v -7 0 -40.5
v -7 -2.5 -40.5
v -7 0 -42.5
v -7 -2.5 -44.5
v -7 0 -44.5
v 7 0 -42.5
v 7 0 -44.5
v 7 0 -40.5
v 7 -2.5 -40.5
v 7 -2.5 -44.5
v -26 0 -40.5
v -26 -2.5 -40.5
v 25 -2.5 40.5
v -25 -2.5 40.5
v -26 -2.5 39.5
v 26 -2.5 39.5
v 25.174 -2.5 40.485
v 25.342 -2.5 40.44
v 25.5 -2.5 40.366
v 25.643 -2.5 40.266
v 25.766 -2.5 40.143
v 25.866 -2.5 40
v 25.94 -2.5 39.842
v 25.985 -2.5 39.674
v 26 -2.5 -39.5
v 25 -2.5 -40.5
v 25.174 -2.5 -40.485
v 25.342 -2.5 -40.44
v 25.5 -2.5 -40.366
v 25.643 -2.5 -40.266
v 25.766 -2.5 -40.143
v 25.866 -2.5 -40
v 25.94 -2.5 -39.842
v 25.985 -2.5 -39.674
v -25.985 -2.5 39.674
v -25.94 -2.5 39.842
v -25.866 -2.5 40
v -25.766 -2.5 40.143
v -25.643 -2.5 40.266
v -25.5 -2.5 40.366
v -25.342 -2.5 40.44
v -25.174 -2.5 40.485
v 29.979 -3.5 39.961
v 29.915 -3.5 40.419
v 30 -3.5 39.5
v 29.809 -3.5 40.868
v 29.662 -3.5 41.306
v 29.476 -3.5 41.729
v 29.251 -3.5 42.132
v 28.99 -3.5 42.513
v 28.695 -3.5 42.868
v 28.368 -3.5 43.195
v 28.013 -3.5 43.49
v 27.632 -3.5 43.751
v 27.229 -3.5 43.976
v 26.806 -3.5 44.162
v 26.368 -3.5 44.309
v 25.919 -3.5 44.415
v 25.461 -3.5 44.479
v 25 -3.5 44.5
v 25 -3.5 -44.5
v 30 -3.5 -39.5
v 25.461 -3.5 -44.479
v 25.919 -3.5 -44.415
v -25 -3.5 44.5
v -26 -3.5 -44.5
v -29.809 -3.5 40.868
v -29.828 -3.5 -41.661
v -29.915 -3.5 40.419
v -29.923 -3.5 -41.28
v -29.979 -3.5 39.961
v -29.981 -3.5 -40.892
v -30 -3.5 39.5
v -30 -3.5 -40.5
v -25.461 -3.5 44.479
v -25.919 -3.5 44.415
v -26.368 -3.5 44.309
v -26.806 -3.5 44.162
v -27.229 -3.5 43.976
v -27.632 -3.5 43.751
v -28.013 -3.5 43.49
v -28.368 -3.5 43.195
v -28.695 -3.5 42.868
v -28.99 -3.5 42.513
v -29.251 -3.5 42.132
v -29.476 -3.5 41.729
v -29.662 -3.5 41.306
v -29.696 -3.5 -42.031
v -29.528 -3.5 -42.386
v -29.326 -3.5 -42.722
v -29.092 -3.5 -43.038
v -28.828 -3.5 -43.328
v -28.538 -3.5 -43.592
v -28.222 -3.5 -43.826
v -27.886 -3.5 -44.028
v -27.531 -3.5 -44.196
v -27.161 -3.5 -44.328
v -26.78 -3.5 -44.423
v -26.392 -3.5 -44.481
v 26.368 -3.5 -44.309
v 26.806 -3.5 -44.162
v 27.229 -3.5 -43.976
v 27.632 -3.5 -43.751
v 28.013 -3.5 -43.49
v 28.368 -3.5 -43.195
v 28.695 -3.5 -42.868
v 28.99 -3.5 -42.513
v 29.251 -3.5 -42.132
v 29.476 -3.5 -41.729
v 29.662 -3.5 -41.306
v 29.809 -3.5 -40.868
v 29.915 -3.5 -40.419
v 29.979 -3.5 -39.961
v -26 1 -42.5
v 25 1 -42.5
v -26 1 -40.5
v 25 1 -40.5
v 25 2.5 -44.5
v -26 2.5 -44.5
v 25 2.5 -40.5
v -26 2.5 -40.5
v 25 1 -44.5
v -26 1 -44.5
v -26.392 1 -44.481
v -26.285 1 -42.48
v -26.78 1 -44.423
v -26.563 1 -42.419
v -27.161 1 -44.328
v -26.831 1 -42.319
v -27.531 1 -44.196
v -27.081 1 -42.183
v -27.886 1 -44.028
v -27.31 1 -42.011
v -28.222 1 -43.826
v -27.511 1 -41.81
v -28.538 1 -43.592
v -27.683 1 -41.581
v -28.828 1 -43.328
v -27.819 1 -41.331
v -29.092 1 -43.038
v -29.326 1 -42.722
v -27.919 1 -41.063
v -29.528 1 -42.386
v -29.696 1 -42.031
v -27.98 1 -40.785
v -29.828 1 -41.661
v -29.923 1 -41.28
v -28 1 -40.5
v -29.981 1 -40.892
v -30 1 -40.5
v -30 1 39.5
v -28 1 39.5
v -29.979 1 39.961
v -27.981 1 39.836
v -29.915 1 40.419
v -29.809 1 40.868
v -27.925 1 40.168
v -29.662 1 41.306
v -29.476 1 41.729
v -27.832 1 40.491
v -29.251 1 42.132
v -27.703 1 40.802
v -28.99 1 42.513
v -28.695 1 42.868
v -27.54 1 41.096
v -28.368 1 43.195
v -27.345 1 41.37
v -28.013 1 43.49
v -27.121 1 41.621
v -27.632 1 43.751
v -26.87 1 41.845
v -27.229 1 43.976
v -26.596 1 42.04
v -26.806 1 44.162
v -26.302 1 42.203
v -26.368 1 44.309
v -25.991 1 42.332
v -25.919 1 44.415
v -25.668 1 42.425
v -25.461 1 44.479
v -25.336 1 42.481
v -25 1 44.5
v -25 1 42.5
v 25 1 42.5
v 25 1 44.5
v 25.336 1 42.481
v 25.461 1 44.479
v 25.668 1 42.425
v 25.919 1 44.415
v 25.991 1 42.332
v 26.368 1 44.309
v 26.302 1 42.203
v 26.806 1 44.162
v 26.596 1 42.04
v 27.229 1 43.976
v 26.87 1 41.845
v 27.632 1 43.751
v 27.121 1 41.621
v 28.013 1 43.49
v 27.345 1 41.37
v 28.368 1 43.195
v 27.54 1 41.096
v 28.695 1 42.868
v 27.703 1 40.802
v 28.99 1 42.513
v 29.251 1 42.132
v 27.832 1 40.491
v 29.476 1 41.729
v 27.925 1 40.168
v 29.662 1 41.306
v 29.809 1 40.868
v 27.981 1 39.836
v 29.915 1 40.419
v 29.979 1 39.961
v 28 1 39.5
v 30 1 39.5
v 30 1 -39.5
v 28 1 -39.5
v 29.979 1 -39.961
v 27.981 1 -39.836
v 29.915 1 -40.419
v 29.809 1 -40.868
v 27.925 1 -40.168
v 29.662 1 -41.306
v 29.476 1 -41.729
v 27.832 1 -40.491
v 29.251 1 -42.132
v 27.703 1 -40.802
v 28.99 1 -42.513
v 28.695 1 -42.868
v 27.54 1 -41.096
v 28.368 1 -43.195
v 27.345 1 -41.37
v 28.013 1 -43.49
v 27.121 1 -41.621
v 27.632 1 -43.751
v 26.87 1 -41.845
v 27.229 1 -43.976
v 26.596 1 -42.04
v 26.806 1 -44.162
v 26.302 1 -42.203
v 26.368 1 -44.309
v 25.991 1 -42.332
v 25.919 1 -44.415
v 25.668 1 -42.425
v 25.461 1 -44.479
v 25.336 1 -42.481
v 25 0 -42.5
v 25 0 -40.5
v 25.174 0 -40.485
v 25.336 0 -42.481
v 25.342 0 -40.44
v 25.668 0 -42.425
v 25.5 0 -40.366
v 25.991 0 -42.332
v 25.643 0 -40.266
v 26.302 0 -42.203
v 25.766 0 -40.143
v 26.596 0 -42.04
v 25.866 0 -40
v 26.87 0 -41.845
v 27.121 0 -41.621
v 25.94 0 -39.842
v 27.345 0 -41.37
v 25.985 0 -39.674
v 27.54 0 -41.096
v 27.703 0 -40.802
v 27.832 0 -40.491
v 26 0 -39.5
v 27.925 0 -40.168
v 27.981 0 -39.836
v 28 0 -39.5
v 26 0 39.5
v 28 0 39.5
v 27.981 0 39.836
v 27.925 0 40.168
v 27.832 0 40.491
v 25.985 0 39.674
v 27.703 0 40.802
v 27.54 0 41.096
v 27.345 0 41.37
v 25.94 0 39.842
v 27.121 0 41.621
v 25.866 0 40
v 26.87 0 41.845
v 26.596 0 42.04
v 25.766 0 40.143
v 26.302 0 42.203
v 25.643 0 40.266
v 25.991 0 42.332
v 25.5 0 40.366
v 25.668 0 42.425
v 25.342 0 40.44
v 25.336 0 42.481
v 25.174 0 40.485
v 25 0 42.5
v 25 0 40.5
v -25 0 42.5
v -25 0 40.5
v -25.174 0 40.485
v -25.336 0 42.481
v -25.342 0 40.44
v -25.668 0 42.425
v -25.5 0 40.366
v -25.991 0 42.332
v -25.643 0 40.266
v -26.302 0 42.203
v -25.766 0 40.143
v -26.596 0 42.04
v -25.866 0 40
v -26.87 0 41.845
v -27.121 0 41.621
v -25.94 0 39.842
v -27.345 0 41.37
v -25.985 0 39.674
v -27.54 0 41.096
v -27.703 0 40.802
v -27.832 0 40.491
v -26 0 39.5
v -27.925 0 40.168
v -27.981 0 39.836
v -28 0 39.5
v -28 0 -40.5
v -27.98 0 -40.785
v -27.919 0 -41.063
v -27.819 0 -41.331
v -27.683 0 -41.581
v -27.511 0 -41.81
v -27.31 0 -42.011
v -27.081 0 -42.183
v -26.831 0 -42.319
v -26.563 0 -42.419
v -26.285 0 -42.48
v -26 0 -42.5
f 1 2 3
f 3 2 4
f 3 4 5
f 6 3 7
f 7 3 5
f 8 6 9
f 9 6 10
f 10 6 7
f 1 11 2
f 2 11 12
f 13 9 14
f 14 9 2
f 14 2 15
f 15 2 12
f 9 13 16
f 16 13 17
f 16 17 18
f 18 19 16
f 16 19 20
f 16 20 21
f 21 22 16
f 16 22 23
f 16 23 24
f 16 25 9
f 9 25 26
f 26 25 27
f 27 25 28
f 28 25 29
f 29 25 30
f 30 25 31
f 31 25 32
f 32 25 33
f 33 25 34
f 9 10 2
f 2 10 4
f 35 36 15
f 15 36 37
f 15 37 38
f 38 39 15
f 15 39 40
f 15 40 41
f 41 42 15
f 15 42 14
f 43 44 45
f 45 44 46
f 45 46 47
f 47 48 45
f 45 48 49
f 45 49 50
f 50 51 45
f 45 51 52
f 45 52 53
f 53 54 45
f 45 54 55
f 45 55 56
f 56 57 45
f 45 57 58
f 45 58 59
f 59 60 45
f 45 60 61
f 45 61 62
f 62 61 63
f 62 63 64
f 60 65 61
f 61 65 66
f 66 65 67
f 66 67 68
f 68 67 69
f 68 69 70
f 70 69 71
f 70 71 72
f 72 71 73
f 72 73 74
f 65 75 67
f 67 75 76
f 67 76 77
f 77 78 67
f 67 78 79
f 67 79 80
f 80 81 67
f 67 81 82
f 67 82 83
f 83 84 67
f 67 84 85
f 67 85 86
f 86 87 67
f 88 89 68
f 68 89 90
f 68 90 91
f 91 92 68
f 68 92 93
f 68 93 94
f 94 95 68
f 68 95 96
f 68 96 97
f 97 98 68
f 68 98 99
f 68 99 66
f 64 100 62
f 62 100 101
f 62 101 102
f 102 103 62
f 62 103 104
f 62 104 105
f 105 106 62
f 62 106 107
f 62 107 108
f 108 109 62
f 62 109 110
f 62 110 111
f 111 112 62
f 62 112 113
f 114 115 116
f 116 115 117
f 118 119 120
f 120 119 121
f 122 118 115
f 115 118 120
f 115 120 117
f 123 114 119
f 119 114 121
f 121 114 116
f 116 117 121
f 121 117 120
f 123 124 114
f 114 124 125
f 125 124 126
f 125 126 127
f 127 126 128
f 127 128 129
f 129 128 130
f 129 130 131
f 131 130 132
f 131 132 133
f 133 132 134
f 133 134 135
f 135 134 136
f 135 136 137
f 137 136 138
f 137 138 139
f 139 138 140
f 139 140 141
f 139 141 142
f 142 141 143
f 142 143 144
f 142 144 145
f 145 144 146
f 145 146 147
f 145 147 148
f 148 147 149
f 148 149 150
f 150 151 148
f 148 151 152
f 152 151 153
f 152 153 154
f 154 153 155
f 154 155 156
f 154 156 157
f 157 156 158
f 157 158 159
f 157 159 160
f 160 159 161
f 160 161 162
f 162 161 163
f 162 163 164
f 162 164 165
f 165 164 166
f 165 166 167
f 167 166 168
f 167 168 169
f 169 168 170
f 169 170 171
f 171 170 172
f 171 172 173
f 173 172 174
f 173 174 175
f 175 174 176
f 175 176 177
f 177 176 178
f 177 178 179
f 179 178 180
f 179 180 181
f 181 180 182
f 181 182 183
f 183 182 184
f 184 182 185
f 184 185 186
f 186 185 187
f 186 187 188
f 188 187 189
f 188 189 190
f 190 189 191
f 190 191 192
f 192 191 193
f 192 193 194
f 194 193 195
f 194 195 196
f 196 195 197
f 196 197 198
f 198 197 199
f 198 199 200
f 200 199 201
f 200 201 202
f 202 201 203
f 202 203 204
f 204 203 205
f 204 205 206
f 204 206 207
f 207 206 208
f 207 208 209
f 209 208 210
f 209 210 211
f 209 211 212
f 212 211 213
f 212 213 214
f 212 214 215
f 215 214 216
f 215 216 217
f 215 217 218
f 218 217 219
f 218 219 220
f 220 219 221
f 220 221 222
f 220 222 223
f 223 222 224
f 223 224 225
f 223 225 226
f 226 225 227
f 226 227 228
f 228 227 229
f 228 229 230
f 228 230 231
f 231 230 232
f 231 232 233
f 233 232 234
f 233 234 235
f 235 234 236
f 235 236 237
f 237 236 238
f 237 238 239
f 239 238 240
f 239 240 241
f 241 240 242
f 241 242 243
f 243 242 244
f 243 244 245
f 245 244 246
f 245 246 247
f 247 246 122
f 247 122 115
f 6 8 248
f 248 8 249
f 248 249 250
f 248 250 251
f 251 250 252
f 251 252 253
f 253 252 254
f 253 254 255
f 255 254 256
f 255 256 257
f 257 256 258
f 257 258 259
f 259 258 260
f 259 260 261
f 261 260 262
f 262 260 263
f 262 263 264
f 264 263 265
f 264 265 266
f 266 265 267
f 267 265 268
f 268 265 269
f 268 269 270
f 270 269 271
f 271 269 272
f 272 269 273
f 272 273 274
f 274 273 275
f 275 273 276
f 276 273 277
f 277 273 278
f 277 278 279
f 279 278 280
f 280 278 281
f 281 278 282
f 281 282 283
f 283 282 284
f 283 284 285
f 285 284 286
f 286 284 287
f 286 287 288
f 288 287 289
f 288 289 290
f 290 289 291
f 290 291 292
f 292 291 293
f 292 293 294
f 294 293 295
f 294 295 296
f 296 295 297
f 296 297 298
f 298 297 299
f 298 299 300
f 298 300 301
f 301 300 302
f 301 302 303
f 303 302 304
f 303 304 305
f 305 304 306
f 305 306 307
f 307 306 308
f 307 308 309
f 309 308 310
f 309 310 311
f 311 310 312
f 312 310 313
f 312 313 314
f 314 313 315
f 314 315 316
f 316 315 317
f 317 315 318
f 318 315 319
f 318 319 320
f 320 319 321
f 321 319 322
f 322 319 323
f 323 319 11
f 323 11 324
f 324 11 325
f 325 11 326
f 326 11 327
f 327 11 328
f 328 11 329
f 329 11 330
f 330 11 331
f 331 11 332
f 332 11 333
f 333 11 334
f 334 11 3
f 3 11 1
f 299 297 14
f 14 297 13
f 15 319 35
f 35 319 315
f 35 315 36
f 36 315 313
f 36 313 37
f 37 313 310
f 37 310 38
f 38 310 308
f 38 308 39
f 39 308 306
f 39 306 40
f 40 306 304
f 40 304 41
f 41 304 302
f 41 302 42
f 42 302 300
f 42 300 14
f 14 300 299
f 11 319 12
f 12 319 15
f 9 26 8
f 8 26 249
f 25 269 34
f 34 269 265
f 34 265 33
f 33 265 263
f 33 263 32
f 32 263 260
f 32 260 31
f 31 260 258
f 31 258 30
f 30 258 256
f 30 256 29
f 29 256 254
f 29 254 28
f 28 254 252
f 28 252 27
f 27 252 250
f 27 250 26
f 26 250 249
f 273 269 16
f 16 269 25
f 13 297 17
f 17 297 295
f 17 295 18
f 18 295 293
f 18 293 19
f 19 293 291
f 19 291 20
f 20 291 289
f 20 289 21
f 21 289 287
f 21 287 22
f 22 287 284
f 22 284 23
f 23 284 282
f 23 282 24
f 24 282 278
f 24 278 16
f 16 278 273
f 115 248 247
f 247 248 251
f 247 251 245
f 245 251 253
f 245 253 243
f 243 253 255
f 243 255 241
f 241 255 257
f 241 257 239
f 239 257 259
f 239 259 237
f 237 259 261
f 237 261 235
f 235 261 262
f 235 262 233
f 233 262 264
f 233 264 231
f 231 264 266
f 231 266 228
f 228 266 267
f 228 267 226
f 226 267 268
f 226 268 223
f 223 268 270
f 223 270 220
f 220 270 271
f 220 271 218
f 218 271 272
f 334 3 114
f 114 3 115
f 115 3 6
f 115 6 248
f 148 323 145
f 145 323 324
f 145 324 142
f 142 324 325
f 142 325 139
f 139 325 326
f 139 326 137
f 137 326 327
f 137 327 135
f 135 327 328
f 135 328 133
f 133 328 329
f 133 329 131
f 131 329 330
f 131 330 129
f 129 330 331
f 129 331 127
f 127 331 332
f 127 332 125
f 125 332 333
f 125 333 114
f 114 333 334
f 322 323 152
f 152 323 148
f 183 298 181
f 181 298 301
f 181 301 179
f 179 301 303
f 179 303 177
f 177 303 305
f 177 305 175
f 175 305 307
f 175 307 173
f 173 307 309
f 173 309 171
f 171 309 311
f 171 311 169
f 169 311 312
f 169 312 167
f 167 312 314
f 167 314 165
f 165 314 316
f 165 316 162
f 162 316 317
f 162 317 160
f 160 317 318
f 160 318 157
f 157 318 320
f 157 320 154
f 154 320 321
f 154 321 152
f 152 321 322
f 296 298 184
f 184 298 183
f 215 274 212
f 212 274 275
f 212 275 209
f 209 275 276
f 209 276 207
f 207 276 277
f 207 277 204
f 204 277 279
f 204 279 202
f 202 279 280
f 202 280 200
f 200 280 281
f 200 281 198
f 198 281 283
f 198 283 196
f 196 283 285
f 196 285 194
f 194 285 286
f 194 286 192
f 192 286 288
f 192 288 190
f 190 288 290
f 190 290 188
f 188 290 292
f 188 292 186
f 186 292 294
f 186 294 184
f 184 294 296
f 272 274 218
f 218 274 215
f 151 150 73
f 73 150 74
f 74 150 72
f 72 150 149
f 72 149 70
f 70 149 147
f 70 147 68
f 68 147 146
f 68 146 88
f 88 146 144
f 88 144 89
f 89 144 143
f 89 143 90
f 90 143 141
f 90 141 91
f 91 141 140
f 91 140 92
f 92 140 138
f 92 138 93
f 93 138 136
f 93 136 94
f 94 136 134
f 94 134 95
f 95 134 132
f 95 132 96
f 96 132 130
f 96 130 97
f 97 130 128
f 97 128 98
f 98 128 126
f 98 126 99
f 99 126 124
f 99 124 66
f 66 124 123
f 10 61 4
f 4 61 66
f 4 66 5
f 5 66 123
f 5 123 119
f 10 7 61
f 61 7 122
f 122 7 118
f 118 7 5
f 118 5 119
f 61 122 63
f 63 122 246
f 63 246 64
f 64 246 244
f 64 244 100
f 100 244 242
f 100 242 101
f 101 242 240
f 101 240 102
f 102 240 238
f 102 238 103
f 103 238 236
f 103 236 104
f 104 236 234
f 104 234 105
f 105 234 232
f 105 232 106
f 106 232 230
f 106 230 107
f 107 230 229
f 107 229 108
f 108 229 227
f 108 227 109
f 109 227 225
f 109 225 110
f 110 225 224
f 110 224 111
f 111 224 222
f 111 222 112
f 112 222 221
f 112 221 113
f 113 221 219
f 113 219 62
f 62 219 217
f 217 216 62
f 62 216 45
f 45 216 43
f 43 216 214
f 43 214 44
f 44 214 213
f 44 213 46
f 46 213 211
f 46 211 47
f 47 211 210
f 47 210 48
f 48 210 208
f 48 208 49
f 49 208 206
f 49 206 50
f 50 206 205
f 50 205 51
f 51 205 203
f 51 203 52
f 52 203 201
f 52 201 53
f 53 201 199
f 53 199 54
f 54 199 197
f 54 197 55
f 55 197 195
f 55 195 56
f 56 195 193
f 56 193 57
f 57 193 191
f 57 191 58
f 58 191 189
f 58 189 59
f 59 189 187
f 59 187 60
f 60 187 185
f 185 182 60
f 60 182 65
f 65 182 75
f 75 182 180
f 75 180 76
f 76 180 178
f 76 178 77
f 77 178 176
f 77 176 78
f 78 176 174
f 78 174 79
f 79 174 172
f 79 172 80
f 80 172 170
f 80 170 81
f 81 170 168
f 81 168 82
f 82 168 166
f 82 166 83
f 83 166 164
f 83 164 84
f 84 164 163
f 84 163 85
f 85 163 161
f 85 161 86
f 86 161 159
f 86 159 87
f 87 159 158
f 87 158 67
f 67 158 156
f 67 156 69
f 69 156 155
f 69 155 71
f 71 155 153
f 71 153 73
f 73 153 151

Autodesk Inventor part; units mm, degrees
ref_plane "YZ Plane" through (0, 0, 0) normal (1, 0, 0) x (0, 1, 0)
ref_plane "XZ Plane" through (0, 0, 0) normal (0, 1, 0) x (-1, 0, 0)
ref_plane "XY Plane" through (0, 0, 0) normal (0, 0, 1) x (1, 0, 0)
sketch "Sketch1" plane through (0, 0, 0) normal (0, 1, 0) x (-1, 0, 0)
  line L0 (-25, 42.5) -> (25, 42.5)
  line L1 (28, 39.5) -> (28, -40.5)
  line L2 (26, -42.5) -> (-25, -42.5)
  line L3 (-28, -39.5) -> (-28, 39.5)
  line L4 (-28, 42.5) -> (28, -42.5) construction
  line L5 (28, 42.5) -> (-28, -42.5) construction
  arc A0 (26, -42.5) -> (28, -40.5) centre (26, -40.5) ccw
  arc A1 (-28, -39.5) -> (-25, -42.5) centre (-25, -39.5) ccw
  arc A2 (-25, 42.5) -> (-28, 39.5) centre (-25, 39.5) ccw
  arc A3 (28, 39.5) -> (25, 42.5) centre (25, 39.5) ccw
  line L6 (30, -40.5) -> (30, 39.5)
  arc A4 (30, 39.5) -> (25, 44.5) centre (25, 39.5) ccw
  line L7 (25, 44.5) -> (-25, 44.5)
  arc A5 (-25, 44.5) -> (-30, 39.5) centre (-25, 39.5) ccw
  line L8 (-30, 39.5) -> (-30, -39.5)
  arc A6 (-30, -39.5) -> (-25, -44.5) centre (-25, -39.5) ccw
  line L9 (-25, -44.5) -> (26, -44.5)
  arc A7 (26, -44.5) -> (30, -40.5) centre (26, -40.5) ccw
  point P0 (0, 0)
  dimension "d0" = 56
  dimension "d1" = 85
  dimension "d2" = 2
  dimension "d3" = 3
  dimension "d4" = 2
extrude "Extrusion1" add sketch "Sketch1" along normal blind 1
sketch "Sketch2" plane through (0, 0, 0) normal (0, -1, 0) x (1, 0, 0)
  arc A0 (-25, 44.5) -> (-30, 39.5) centre (-25, 39.5) ccw projected
  line L0 (-25, 44.5) -> (25, 44.5) projected
  arc A1 (30, 39.5) -> (25, 44.5) centre (25, 39.5) ccw projected
  line L1 (30, 39.5) -> (30, -39.5) projected
  arc A2 (25, -44.5) -> (30, -39.5) centre (25, -39.5) ccw projected
  line L2 (25, -44.5) -> (-26, -44.5) projected
  arc A3 (-30, -40.5) -> (-26, -44.5) centre (-26, -40.5) ccw projected
  line L3 (-30, -40.5) -> (-30, 39.5) projected
  line L4 (-26, -44.5) -> (25, -44.5)
  line L5 (30, -39.5) -> (30, 39.5)
  line L6 (25, 44.5) -> (-25, 44.5)
  line L7 (-30, 39.5) -> (-30, -40.5)
  line L8 (-30, -44.5) -> (30, 44.5) construction
  line L9 (30, -44.5) -> (-30, 44.5) construction
  arc A4 (-25, 44.5) -> (-30, 39.5) centre (-25, 39.5) ccw
  arc A5 (30, 39.5) -> (25, 44.5) centre (25, 39.5) ccw
  arc A6 (25, -42.5) -> (28, -39.5) centre (25, -39.5) ccw projected
  arc A7 (25, -44.5) -> (30, -39.5) centre (25, -39.5) ccw
  arc A8 (-30, -40.5) -> (-26, -44.5) centre (-26, -40.5) ccw
  line L10 (25, 40.5) -> (-25, 40.5)
  arc A9 (-25, 40.5) -> (-26, 39.5) centre (-25, 39.5) ccw
  line L11 (-26, 39.5) -> (-26, -40.5)
  line L12 (-26, -40.5) -> (25, -40.5)
  arc A10 (25, -40.5) -> (26, -39.5) centre (25, -39.5) ccw
  line L13 (26, -39.5) -> (26, 39.5)
  arc A11 (26, 39.5) -> (25, 40.5) centre (25, 39.5) ccw
  point P0 (0, 0)
  point P1 (-26, -40.5)
  dimension "d12" = 4
extrude "Extrusion2" add sketch "Sketch2" along normal blind 2.5
sketch "Sketch3" plane through (25, 1, -44.5) normal (0, 0, -1) x (-1, 0, 0)
  line L0 (51, -3.5) -> (51, 0) projected
  line L1 (51, 0) -> (0, 0)
  line L2 (0, 0) -> (0, 1.5)
  line L3 (0, 1.5) -> (51, 1.5)
  line L4 (51, 1.5) -> (51, 0)
  point P0 (25, -1)
  dimension "d9" = 1.5
extrude "Extrusion3" add sketch "Sketch3" against normal blind 4
sketch "Sketch4" plane through (0, -2.5, 0) normal (0, -1, 0) x (1, 0, 0)
  line L0 (25, 44.5) -> (-25, 44.5)
  line L1 (-30, 39.5) -> (-30, -40.5)
  line L2 (-26, -44.5) -> (25, -44.5)
  line L3 (30, -39.5) -> (30, 39.5)
  line L4 (30, 44.5) -> (-30, -44.5) construction
  line L5 (-30, 44.5) -> (30, -44.5) construction
  line L6 (-26, -44.5) -> (25, -44.5) projected
  line L7 (-30, 39.5) -> (-30, -40.5) projected
  arc A0 (25, -44.5) -> (30, -39.5) centre (25, -39.5) ccw projected
  arc A1 (-30, -40.5) -> (-26, -44.5) centre (-26, -40.5) ccw projected
  arc A2 (-25, 44.5) -> (-30, 39.5) centre (-25, 39.5) ccw projected
  arc A3 (30, 39.5) -> (25, 44.5) centre (25, 39.5) ccw projected
  arc A4 (25, -44.5) -> (30, -39.5) centre (25, -39.5) ccw
  line L8 (25, -40.5) -> (-26, -40.5) projected
  arc A5 (-30, -40.5) -> (-26, -44.5) centre (-26, -40.5) ccw
  arc A6 (-25, 44.5) -> (-30, 39.5) centre (-25, 39.5) ccw
  arc A7 (30, 39.5) -> (25, 44.5) centre (25, 39.5) ccw
  line L9 (25, 44.5) -> (-25, 44.5) projected
  point P0 (0, 0)
extrude "Extrusion4" add sketch "Sketch4" along normal blind 1
sketch "Sketch5" plane through (25, 2.5, -44.5) normal (0, 0, -1) x (-1, 0, 0)
  line L0 (51, -6) -> (0, -6) projected
  line L1 (18, -5) -> (32, -5)
  line L2 (32, -5) -> (32, -2.5)
  line L3 (32, -2.5) -> (18, -2.5)
  line L4 (18, -2.5) -> (18, -5)
  line L5 (18, -5) -> (32, -2.5) construction
  line L6 (32, -5) -> (18, -2.5) construction
  point P0 (25, -2.5)
  point P1 (25, -3.75)
  dimension "d16" = 14
  dimension "d17" = 1
  dimension "d18" = 2.5
extrude "Extrusion5" cut sketch "Sketch5" against normal up to surface (4 mm away)
properties part number "piholder-v1"
